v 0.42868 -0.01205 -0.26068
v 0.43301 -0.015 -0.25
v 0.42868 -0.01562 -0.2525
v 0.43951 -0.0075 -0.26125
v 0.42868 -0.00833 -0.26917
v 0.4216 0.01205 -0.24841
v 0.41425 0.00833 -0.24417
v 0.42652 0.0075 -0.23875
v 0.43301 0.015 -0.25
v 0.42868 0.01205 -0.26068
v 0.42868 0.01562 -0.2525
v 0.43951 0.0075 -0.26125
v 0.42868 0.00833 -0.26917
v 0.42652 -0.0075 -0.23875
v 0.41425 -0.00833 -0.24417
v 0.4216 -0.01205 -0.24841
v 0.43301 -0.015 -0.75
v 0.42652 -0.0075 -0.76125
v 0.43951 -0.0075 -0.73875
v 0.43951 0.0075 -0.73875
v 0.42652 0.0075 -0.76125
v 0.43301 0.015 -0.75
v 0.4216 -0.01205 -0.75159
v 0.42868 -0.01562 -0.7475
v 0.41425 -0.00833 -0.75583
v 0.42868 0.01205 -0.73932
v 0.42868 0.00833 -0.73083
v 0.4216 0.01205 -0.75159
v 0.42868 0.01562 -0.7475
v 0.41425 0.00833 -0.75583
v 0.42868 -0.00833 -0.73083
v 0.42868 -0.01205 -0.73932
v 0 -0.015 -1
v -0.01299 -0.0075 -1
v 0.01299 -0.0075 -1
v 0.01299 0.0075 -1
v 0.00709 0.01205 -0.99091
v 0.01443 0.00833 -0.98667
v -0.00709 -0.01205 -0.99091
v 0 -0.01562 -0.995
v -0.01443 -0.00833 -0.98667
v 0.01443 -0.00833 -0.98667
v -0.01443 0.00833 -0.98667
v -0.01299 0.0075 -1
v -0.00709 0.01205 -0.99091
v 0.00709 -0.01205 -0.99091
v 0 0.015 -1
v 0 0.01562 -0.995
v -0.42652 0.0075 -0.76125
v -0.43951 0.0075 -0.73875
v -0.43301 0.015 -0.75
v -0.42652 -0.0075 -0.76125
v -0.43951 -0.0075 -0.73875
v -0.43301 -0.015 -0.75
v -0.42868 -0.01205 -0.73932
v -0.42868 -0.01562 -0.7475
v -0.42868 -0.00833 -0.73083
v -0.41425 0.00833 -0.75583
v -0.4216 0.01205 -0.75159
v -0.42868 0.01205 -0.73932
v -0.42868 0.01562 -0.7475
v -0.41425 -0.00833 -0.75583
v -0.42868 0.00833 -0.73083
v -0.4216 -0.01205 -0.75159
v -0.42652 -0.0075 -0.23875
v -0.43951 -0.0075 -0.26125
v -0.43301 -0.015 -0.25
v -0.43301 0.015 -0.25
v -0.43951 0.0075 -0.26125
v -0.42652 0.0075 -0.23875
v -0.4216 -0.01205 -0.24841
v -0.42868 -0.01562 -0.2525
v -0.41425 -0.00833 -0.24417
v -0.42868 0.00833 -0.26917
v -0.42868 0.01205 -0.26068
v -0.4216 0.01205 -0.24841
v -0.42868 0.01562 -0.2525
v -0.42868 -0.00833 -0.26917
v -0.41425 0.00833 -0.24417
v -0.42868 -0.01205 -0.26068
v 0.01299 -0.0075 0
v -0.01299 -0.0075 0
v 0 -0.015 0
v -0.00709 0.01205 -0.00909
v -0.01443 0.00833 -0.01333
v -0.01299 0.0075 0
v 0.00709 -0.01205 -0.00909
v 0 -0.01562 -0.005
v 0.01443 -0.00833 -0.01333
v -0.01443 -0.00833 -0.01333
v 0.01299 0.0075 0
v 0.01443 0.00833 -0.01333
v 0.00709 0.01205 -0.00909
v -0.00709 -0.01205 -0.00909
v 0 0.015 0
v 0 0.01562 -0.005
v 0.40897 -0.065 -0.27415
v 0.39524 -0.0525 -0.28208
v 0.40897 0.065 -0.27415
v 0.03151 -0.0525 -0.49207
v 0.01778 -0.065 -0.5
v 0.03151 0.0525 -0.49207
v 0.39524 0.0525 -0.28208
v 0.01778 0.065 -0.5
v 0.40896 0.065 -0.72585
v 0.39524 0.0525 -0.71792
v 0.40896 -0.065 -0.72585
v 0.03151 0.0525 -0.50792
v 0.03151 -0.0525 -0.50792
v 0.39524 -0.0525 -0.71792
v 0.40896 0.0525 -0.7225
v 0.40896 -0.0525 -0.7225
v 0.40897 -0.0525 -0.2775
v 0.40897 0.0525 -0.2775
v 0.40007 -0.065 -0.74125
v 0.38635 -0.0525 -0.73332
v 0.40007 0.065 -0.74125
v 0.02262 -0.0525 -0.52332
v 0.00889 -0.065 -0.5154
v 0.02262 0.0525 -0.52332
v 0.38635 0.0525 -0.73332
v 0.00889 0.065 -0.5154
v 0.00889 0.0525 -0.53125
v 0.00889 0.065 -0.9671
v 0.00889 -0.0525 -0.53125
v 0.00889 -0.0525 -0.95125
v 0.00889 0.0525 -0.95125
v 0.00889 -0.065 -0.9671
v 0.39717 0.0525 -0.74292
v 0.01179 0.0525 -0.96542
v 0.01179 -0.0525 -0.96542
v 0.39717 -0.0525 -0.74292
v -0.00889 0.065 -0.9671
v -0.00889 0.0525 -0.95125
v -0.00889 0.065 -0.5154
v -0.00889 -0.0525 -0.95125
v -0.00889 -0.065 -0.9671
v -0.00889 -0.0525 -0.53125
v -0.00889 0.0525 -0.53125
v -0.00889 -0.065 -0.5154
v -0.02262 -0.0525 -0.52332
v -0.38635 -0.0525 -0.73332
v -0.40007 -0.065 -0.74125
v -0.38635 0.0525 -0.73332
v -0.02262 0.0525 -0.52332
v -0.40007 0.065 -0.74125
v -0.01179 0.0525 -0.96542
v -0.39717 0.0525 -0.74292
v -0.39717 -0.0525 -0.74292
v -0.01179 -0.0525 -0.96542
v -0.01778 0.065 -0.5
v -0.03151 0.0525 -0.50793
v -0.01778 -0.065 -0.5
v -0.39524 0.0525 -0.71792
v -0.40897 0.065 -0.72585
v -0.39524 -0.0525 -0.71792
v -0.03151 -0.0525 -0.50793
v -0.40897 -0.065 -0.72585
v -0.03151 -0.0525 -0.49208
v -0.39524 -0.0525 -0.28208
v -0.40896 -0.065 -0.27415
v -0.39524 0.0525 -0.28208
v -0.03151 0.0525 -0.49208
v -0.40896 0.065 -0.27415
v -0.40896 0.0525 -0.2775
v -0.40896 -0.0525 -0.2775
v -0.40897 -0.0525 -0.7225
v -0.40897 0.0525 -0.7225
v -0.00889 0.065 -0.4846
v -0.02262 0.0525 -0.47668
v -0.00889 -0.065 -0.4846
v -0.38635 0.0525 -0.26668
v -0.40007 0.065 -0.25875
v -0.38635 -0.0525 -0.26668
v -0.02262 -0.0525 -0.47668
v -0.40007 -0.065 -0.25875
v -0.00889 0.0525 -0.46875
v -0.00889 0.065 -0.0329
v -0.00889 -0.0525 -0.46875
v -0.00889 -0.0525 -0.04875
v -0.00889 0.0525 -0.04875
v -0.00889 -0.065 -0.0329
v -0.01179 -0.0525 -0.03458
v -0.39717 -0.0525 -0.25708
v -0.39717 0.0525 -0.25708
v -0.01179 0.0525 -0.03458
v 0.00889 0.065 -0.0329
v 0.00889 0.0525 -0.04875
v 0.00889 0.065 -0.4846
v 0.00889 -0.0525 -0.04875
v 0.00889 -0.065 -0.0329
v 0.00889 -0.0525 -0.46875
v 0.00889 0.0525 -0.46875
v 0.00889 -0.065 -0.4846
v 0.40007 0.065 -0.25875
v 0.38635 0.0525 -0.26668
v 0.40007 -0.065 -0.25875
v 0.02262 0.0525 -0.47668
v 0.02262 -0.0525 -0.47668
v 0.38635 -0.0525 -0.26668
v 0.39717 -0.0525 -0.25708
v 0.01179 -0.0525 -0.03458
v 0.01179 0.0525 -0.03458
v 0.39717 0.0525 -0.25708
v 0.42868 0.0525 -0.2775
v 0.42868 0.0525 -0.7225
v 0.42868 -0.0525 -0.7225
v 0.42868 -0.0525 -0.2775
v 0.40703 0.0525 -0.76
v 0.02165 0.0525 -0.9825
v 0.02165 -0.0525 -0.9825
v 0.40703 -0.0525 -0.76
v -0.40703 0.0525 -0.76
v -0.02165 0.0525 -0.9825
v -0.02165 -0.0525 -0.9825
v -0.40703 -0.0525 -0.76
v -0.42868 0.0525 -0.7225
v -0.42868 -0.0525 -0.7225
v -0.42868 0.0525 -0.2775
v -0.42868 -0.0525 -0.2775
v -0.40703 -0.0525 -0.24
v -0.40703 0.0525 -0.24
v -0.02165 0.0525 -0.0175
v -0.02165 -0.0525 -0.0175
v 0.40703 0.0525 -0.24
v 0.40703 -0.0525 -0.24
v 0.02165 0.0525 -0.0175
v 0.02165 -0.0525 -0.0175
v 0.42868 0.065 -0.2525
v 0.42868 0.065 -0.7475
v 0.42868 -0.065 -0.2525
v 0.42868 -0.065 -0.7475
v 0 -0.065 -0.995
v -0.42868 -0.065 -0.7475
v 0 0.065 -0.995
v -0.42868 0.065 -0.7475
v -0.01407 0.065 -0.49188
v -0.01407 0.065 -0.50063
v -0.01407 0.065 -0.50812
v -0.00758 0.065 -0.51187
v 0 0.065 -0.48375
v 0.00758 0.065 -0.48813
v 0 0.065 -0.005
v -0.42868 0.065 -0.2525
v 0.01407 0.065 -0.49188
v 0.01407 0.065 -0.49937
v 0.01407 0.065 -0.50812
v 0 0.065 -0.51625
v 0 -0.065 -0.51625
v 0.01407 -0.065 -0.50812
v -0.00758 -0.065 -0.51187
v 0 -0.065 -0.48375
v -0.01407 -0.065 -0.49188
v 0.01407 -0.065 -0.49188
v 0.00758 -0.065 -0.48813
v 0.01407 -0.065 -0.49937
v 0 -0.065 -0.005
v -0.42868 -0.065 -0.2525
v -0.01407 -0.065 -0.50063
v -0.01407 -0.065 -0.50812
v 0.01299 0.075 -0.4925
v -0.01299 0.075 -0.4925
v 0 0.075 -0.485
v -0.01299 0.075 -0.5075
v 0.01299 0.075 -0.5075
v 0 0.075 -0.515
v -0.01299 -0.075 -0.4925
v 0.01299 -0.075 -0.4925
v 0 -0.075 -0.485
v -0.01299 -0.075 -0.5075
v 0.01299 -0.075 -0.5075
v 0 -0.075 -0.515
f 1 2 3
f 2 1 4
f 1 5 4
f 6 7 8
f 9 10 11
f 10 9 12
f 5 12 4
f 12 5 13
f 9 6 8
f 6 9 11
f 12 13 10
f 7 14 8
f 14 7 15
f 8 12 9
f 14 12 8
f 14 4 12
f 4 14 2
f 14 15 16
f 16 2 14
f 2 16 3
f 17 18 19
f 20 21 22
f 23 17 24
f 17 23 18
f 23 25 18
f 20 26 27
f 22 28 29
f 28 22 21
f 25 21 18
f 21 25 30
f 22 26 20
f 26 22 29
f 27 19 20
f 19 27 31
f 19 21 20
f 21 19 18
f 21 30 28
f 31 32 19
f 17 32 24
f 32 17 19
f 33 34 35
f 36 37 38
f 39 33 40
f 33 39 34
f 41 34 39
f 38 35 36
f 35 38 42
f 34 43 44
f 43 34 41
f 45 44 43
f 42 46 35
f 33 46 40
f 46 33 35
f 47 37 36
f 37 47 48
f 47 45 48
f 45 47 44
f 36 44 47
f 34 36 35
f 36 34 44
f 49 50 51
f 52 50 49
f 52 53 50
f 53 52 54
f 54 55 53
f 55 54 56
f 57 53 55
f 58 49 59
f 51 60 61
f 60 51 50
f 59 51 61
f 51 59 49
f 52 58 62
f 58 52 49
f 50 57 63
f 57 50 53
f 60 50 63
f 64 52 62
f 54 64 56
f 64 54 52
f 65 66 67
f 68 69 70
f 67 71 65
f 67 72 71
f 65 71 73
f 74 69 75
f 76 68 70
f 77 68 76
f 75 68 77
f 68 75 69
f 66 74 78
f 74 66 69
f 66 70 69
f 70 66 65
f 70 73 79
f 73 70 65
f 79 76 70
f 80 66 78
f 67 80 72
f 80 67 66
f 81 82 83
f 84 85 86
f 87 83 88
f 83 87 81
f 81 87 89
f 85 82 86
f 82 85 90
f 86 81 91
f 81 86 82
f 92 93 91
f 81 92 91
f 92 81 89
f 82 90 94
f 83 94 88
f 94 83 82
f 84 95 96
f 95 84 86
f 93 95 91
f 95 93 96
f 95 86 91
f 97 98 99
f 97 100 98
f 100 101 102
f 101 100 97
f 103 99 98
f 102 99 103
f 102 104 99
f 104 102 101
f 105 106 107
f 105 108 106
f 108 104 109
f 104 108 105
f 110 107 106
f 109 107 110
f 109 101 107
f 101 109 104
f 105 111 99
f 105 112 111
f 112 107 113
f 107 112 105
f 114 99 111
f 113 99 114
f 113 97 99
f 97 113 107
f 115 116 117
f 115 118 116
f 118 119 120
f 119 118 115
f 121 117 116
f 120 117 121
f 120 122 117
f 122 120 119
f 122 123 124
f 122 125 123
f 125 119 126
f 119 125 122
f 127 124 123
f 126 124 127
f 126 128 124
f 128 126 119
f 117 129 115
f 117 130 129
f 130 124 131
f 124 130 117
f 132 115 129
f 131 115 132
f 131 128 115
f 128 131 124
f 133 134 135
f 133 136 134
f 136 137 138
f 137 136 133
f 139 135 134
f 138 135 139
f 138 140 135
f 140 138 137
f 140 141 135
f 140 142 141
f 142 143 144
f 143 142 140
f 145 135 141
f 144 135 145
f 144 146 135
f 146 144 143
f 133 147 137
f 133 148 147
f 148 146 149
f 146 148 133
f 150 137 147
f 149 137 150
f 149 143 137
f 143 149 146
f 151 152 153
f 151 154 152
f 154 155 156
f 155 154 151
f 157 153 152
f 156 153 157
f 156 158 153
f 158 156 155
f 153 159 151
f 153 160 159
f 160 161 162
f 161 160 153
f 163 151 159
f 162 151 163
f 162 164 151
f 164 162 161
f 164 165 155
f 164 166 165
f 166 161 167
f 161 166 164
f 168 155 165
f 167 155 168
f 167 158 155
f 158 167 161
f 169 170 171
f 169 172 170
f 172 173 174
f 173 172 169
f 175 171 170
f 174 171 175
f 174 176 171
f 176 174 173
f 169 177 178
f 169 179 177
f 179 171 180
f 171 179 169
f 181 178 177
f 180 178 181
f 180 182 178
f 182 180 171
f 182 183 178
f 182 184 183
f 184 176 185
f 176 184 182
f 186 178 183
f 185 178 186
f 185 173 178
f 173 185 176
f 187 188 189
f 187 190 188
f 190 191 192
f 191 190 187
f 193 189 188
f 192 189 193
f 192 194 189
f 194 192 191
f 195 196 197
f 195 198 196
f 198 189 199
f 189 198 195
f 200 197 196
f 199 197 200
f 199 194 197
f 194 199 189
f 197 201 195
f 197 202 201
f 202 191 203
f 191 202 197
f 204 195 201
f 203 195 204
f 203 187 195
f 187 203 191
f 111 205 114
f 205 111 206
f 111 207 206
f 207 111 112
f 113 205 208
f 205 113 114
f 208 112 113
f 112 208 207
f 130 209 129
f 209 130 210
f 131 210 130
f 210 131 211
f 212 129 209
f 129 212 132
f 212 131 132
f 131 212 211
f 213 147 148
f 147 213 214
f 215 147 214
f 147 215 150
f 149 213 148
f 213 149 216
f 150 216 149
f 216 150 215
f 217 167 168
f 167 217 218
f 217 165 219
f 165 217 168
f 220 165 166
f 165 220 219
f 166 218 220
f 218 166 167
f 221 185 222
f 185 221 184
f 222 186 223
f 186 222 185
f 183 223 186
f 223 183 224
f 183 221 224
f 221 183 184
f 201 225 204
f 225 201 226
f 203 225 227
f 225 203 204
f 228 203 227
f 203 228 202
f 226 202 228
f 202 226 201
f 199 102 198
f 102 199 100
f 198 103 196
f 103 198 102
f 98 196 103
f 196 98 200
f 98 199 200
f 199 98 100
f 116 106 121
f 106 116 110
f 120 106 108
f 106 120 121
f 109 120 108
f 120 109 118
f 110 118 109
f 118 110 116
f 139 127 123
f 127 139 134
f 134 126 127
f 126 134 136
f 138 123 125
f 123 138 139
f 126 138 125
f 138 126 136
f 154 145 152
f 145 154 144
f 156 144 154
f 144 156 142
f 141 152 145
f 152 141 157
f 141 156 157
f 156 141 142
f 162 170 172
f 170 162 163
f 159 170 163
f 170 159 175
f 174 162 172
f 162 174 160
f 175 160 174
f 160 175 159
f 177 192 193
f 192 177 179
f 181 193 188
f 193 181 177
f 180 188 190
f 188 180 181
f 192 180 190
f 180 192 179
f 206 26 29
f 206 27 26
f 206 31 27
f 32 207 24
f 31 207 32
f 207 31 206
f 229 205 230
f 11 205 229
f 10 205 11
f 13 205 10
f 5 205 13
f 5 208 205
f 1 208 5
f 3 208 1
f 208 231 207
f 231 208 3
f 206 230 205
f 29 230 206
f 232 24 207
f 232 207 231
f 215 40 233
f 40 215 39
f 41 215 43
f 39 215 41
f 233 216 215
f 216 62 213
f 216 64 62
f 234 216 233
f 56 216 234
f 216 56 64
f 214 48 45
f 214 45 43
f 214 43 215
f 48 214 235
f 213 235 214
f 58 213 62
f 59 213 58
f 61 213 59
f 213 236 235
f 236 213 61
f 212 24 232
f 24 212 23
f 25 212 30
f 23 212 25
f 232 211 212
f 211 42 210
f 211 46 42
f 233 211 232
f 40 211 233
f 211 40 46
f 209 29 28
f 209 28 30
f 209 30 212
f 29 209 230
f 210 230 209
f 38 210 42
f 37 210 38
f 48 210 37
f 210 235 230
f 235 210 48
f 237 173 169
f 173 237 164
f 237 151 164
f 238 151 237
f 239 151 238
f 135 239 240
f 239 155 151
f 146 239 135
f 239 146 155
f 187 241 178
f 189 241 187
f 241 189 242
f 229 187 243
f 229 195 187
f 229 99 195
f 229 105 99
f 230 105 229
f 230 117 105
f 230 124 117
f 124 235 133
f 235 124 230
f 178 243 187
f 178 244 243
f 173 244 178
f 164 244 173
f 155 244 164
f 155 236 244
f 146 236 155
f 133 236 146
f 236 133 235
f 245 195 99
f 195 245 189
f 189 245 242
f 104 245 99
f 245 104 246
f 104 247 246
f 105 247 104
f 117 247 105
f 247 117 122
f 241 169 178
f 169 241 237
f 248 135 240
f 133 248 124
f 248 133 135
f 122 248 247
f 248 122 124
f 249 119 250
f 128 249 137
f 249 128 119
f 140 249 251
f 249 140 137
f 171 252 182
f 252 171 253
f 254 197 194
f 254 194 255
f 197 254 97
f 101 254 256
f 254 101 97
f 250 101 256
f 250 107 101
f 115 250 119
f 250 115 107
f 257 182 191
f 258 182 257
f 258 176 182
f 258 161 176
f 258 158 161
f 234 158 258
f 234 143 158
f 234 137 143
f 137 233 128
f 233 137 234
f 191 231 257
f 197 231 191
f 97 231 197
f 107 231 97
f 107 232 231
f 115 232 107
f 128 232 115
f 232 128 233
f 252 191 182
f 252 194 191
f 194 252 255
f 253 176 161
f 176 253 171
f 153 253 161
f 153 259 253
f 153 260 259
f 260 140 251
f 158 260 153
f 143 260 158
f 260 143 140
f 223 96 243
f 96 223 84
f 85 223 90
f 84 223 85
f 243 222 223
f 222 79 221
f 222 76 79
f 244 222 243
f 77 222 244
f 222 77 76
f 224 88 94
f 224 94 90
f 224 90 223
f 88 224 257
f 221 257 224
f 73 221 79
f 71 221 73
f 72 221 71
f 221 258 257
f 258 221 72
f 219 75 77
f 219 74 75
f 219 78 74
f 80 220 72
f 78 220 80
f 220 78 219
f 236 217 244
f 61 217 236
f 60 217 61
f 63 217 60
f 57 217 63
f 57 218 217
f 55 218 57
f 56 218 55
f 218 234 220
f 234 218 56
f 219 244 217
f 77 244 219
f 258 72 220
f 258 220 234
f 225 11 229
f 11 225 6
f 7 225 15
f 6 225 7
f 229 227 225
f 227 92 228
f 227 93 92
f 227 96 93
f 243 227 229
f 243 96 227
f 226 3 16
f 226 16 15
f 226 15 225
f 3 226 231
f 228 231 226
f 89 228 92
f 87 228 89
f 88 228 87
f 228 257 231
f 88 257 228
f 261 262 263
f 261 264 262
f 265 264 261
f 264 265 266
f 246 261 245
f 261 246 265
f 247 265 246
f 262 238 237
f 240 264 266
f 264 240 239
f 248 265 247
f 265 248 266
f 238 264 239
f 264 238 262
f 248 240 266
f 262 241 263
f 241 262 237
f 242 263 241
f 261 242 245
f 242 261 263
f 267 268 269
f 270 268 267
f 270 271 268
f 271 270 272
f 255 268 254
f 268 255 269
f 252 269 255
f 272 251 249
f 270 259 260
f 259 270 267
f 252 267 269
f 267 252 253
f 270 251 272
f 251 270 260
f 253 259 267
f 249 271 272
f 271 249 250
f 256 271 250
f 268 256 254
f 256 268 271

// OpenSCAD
module hexagon_truss(r_hex, h_hex, th){    
    r = r_hex*0.99;   
    lh = r_hex - r;
     h = h_hex - 4*lh;
    
    difference(){    
        cylinder(h = h, r1 = r, r2 = r, center = true, $fn=6);
    triangle_l = r/sqrt(3)-th;
    displacement = r*cos(30)-(r+th)/sqrt(3)/2;
    for (i = [0:5])
        rotate([0,0,i*60+30])
                translate([displacement,0,0])
                rotate([0,0,60]){                
                cylinder(h = h+1e-3, r1 = triangle_l, r2 = triangle_l, center = true, $fn=3);
            }
//        }
    for (i = [0:5])
        rotate([0,0,i*60+30])
            translate([r*cos(30)-th/2,0,0])
                rotate([0,0,90])
                    cube([r-2*th, th+1e-3, h-th],center=true);
                
    for (i = [0:5])
        rotate([0,0,i*60])
            translate([(r-th/2)/2,0,0])
                cube([r-3*th, th, h-th],center=true);
    

}
    for (i = [0:5])
        rotate([0,0,i*60])
            translate([r-lh,0,0])
                rotate([0,90,0])
                cylinder(h = 4*lh, r1 = 3.5*lh, r2 = 3*lh, center = true, $fn=6);
    
    translate([0,0,h/2])
        cylinder(h = 4*lh, r1 = 3.5*lh, r2 = 3*lh, center = true, $fn=6);
    translate([0,0,-h/2])
        rotate([180,0,0])
            cylinder(h = 4*lh, r1 = 3.5*lh, r2 = 3*lh, center = true, $fn=6);
}

r_hex=0.5;
rotate([180, 0, 0])
translate([0,0,r_hex])
    rotate([90,30,0])
        color([0.8, 0.8, 0.8])   hexagon_truss(r_hex=r_hex, h_hex=0.15, th=0.025);
